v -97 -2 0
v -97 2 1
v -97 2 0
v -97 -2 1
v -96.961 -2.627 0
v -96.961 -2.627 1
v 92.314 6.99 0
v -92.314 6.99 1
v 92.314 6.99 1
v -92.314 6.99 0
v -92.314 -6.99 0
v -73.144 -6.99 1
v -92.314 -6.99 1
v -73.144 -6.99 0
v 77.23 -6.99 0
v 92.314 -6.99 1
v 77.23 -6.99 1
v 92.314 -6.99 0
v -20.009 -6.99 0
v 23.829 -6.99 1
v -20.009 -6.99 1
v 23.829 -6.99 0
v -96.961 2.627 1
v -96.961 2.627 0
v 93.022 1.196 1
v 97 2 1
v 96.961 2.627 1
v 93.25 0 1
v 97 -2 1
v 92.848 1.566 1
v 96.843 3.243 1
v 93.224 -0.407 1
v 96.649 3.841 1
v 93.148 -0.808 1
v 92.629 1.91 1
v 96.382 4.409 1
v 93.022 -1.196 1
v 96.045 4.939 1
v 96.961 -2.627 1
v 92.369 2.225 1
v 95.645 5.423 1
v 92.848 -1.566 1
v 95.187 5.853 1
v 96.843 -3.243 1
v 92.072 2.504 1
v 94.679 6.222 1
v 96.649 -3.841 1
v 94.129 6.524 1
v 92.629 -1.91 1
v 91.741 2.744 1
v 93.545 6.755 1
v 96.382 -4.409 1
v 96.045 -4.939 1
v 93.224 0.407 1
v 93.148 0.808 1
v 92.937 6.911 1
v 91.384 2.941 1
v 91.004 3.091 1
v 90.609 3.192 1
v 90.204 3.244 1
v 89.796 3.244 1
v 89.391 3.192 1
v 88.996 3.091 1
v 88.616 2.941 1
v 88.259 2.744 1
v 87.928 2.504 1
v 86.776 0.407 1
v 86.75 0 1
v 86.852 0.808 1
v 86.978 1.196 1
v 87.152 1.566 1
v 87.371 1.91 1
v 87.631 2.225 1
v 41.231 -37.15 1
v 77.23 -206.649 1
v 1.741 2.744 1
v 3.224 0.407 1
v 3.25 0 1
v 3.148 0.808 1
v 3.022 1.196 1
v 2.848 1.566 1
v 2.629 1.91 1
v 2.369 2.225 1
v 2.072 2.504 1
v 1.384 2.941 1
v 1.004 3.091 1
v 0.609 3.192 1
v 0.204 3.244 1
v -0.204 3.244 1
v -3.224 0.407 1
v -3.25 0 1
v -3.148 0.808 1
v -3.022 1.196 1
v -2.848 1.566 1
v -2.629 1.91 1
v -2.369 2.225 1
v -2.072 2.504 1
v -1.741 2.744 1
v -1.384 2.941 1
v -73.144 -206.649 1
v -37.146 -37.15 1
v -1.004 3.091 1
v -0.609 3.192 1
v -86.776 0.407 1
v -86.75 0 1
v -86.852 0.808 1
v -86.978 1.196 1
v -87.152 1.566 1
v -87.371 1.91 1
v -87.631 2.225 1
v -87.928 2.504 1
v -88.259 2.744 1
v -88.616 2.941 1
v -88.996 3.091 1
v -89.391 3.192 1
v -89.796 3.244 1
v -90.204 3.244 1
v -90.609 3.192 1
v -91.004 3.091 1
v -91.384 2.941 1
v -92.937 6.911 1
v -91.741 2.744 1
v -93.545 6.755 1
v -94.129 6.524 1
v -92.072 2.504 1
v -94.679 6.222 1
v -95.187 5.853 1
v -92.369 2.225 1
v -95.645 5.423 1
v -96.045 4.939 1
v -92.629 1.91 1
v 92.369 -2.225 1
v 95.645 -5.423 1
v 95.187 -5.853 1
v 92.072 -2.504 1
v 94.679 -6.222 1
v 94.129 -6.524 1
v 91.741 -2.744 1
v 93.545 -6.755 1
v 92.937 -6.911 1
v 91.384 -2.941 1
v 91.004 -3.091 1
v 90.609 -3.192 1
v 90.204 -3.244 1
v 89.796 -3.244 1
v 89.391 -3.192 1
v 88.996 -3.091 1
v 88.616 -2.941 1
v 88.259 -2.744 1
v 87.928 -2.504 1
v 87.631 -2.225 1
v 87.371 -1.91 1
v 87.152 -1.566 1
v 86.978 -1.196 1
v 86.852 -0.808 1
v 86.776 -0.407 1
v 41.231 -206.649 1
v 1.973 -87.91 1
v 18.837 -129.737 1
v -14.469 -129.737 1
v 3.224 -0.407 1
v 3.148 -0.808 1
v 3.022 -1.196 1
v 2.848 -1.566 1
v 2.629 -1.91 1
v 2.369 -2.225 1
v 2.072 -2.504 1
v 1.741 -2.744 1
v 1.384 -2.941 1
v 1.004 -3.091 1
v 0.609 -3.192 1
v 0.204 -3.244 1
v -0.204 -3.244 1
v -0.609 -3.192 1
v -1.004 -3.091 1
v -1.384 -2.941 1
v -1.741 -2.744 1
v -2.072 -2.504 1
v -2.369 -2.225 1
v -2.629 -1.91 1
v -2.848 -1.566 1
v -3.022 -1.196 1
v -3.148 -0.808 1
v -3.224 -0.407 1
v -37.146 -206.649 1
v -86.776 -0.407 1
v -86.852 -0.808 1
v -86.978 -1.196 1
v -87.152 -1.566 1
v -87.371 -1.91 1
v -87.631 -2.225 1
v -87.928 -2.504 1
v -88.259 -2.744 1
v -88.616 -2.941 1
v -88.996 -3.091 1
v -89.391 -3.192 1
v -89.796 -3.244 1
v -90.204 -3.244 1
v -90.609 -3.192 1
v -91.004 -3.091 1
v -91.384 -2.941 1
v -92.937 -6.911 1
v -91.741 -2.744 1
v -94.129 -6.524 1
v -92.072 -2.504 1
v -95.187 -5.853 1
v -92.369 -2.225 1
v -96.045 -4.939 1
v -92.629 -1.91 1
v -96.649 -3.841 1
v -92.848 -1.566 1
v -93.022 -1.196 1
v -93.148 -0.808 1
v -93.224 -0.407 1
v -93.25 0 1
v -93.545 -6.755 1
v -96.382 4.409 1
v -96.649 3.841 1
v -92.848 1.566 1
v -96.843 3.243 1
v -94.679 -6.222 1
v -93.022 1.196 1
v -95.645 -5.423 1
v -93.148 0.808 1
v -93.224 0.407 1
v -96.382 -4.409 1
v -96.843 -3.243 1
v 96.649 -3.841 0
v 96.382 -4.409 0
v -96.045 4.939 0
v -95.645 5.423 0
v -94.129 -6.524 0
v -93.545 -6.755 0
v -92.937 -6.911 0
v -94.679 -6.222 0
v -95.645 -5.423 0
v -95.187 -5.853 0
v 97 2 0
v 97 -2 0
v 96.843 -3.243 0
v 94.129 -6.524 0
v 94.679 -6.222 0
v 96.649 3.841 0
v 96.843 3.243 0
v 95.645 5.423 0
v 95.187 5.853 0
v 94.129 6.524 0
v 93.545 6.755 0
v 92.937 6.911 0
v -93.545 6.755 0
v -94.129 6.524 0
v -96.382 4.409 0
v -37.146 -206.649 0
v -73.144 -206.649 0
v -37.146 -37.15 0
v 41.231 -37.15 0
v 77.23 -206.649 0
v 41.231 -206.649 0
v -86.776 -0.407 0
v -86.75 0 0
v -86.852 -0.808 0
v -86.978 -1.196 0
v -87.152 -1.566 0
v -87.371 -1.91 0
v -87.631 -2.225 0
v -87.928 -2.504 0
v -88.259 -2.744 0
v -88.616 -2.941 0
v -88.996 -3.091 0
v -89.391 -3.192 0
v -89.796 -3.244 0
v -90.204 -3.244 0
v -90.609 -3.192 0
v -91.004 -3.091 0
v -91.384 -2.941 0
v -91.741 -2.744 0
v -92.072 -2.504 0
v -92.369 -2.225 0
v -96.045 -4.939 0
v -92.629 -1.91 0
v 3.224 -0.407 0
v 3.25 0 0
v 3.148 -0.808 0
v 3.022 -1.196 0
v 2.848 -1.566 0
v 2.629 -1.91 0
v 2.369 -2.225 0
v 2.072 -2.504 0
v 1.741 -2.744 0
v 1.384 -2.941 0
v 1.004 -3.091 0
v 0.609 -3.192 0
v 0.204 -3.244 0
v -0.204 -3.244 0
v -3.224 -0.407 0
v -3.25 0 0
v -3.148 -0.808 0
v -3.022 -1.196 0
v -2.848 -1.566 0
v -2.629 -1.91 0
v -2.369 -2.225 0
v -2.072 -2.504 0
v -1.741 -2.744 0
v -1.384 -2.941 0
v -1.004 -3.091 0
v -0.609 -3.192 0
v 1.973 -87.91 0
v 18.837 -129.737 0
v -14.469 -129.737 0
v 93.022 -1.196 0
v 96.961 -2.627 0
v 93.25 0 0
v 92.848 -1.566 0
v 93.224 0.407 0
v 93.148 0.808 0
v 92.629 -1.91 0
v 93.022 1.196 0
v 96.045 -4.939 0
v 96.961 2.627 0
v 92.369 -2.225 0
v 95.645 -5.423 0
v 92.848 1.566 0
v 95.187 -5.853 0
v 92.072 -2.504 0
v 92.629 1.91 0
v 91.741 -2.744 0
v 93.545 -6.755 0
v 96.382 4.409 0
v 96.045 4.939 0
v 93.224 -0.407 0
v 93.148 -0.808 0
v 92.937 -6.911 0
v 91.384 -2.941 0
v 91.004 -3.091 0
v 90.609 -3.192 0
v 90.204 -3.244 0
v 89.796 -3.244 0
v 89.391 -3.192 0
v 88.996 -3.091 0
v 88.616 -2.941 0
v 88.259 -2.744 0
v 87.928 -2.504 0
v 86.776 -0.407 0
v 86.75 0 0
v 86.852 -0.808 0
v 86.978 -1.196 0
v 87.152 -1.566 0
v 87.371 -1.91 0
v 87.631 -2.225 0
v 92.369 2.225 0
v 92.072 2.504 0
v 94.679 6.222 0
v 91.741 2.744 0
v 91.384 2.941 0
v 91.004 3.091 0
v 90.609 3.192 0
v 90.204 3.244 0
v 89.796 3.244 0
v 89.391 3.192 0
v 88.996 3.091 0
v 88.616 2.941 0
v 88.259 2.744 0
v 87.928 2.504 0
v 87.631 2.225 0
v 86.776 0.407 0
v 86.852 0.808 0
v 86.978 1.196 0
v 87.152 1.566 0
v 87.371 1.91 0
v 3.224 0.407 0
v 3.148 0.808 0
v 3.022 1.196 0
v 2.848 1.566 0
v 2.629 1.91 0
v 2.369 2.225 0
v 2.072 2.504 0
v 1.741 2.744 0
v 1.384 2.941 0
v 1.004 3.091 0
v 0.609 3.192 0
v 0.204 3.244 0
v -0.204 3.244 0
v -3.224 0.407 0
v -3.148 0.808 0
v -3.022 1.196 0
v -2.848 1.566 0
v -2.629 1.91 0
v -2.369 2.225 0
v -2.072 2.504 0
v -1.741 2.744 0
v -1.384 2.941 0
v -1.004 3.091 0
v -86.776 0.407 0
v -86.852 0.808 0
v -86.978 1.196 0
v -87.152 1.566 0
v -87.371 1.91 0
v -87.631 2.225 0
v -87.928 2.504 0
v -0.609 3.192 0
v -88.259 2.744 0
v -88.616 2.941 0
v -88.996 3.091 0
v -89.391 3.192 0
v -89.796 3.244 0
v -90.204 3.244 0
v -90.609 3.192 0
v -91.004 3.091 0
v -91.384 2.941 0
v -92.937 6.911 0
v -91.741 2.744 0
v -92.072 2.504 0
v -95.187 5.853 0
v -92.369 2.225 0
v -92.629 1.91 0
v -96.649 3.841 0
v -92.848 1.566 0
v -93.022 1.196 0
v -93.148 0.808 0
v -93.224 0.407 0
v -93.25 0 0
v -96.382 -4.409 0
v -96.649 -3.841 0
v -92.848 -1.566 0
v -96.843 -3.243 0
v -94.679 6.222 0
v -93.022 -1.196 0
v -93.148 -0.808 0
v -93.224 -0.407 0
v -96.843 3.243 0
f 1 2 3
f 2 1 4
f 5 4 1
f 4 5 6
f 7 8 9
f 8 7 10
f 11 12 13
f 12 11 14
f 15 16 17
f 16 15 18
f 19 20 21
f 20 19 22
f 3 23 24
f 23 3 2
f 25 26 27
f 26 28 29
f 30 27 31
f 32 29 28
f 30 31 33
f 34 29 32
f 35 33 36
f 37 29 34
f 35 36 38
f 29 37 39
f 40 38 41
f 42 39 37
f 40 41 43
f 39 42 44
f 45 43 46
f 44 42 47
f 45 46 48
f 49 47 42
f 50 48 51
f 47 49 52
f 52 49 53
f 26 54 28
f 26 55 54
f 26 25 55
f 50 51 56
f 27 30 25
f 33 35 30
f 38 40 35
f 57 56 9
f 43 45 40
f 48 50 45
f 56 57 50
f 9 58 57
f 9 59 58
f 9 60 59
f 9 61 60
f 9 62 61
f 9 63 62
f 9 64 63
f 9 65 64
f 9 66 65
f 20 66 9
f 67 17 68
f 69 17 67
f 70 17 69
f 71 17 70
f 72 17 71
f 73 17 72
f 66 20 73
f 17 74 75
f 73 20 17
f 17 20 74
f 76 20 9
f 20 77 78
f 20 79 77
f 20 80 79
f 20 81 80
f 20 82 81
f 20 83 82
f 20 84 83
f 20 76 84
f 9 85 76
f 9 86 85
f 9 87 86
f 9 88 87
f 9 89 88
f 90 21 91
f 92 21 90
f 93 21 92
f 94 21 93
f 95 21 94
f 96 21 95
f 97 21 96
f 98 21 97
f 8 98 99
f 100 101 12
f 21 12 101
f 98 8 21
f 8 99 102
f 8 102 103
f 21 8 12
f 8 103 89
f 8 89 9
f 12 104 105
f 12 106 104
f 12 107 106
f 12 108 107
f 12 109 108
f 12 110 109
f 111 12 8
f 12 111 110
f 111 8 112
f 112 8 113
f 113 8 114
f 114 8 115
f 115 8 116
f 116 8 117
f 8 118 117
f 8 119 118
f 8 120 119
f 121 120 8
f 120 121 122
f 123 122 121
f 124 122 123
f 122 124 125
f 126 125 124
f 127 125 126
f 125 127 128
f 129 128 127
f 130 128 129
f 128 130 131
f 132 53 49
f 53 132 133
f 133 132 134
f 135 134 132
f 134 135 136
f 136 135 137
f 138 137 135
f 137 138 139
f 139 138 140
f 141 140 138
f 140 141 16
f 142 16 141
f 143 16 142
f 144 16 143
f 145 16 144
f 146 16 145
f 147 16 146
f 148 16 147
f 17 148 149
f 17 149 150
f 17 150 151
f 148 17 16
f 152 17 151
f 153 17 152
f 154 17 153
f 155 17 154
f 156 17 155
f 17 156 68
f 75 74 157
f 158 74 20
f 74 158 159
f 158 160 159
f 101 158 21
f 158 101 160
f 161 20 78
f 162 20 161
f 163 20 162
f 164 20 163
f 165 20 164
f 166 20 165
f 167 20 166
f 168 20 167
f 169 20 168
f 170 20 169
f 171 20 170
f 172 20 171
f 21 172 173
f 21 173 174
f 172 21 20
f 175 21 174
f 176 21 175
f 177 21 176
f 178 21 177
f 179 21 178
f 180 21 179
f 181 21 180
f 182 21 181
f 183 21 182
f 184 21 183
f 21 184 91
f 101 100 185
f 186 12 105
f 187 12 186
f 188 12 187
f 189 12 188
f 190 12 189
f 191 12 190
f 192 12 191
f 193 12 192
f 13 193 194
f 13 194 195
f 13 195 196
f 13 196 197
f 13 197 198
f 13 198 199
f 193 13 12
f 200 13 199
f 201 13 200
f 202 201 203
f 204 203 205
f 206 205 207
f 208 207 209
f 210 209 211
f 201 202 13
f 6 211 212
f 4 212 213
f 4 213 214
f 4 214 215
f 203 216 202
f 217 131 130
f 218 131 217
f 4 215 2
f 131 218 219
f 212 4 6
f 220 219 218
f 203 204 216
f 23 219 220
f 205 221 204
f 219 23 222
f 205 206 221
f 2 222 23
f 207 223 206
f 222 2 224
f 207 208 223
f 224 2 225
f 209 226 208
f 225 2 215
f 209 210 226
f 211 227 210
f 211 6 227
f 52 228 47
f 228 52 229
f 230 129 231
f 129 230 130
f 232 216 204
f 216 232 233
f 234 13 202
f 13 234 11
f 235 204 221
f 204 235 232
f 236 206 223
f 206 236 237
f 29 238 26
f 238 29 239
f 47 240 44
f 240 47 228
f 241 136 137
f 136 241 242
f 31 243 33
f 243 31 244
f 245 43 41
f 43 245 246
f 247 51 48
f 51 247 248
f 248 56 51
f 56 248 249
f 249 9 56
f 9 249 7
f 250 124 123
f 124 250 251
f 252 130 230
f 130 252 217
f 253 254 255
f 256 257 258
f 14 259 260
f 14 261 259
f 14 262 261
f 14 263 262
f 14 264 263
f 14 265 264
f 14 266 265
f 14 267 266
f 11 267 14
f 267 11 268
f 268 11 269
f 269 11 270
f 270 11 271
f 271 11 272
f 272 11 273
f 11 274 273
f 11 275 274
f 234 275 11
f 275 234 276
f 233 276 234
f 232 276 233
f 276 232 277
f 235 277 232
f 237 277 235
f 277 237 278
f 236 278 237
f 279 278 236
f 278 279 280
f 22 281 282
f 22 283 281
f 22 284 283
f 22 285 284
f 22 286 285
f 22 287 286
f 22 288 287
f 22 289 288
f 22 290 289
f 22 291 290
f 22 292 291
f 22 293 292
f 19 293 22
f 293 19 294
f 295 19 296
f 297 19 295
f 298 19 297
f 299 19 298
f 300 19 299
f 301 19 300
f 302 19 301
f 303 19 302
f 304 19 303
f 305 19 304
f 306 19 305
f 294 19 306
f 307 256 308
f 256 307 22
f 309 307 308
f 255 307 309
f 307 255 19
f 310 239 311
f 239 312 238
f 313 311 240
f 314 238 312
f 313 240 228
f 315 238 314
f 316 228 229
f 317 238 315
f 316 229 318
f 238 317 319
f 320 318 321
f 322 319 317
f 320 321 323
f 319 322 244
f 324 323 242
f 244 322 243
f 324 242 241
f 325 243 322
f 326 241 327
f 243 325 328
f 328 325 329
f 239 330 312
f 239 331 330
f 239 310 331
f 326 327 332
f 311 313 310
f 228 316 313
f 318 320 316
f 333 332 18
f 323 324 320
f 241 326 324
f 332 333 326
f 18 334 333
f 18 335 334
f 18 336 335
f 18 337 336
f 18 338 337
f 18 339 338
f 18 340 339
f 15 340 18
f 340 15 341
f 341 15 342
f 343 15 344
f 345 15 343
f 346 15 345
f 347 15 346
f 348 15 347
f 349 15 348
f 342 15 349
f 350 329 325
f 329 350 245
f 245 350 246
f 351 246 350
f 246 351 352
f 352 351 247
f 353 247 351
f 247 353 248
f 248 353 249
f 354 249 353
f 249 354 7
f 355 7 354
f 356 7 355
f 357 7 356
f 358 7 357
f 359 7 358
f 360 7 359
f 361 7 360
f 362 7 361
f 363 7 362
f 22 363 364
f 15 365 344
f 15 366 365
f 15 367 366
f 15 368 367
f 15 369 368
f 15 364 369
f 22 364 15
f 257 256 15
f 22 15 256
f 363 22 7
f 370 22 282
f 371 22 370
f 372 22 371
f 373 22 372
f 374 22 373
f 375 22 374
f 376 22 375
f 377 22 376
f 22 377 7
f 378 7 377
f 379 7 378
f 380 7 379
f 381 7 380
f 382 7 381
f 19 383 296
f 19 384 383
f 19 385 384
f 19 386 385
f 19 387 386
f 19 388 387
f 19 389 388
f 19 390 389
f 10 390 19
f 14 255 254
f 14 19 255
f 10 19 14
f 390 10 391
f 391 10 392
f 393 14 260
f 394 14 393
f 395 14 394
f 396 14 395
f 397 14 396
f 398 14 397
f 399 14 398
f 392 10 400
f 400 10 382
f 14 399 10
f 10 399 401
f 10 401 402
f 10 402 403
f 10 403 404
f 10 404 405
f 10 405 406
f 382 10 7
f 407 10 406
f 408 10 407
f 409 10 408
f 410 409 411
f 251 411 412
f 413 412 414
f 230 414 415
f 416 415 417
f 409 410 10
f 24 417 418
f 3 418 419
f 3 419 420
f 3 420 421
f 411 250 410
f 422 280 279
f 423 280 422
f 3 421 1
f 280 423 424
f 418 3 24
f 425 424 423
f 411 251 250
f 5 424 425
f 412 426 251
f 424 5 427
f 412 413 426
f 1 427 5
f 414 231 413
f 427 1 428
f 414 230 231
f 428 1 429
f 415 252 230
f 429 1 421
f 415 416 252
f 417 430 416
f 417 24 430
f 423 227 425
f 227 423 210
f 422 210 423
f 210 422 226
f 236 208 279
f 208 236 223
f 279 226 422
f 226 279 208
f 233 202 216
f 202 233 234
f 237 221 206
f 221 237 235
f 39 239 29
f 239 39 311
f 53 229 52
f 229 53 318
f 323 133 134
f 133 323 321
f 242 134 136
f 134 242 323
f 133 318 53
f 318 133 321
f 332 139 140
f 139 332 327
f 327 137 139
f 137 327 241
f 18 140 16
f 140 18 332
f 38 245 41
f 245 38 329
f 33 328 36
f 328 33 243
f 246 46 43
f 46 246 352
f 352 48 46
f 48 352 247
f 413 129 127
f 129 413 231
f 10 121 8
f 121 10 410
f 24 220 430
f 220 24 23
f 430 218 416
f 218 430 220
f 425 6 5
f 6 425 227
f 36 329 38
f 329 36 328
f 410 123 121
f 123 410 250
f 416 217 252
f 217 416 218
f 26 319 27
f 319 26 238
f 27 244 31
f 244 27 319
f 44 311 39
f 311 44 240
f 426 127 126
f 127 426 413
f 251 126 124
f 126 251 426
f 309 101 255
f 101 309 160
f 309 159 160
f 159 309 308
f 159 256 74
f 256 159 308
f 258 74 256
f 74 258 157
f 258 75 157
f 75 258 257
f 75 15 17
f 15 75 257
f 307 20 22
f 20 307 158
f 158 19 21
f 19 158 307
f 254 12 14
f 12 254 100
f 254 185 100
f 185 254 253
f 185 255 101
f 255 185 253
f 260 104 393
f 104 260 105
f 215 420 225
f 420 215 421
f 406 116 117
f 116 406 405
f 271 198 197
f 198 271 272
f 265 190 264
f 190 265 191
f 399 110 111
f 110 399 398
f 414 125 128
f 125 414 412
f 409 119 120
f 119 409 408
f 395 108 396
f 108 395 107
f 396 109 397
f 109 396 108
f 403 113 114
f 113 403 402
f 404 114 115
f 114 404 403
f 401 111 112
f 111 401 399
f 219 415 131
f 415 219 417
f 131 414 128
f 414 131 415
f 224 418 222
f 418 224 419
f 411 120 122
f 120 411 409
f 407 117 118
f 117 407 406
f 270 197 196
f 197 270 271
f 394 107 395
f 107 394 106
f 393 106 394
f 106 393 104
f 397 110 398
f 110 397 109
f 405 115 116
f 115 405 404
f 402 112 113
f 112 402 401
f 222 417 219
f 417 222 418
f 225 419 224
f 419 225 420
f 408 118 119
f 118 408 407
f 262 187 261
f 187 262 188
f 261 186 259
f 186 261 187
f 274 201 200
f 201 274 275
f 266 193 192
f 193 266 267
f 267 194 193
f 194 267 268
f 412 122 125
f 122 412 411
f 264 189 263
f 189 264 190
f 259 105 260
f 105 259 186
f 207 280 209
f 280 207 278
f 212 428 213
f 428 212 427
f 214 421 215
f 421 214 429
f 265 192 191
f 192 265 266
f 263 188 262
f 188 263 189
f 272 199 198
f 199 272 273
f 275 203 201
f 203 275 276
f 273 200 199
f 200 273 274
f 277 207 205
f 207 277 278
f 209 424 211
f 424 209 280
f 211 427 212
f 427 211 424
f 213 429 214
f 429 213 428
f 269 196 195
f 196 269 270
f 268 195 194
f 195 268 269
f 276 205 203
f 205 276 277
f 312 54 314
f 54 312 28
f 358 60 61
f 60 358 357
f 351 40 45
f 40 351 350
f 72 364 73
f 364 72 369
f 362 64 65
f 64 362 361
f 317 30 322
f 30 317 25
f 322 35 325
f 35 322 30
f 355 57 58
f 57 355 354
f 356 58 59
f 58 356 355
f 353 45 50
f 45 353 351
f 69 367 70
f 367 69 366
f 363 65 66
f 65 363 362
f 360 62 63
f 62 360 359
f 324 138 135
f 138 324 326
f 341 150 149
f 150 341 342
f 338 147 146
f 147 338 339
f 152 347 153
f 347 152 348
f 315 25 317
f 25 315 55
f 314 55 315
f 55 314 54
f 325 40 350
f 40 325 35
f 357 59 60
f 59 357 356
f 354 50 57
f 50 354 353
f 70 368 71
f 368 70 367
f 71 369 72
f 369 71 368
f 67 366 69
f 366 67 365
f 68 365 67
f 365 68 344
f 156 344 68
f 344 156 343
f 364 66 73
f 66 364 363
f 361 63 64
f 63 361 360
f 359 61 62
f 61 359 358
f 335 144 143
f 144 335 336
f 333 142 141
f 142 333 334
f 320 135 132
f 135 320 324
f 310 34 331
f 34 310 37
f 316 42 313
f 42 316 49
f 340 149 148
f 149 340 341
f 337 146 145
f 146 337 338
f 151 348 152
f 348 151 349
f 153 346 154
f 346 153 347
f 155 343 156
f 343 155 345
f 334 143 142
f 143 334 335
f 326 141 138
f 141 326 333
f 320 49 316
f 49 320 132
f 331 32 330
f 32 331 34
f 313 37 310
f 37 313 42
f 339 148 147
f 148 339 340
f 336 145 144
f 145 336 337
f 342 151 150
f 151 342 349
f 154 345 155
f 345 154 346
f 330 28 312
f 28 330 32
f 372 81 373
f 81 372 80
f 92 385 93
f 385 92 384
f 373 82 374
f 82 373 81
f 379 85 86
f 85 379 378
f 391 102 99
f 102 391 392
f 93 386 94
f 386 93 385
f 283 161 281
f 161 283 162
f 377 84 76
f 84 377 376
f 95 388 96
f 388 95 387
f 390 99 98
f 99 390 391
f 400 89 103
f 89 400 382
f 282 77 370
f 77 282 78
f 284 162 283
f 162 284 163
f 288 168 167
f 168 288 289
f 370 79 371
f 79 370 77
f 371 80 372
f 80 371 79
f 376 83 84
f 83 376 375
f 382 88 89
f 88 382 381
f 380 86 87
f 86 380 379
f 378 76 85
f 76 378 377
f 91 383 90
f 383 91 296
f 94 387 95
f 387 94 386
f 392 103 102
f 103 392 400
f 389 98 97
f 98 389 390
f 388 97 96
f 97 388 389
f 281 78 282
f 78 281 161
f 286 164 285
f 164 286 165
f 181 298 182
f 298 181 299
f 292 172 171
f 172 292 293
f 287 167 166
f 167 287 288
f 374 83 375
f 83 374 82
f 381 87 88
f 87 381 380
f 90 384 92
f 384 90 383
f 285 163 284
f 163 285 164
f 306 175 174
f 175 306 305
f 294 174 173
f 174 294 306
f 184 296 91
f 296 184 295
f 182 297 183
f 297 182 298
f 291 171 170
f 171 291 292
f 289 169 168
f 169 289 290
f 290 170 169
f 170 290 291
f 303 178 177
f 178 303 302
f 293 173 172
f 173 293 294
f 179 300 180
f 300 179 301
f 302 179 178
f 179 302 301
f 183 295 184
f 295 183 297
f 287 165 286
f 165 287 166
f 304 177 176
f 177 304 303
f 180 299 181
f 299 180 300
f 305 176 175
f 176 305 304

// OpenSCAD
$fn = 50;


difference() {
	union() {
		translate(v = [0, 0, 0]) {
			rotate(a = [0, 0, 0]) {
				hull() {
					translate(v = [-92.0000000000, 2.0000000000, 0]) {
						rotate(a = [0, 0, 0]) {
							translate(v = [0, 0, 0]) {
								rotate(a = [0, 0, 0]) {
									cylinder(h = 1, r = 5);
								}
							}
						}
					}
					translate(v = [92.0000000000, 2.0000000000, 0]) {
						rotate(a = [0, 0, 0]) {
							translate(v = [0, 0, 0]) {
								rotate(a = [0, 0, 0]) {
									cylinder(h = 1, r = 5);
								}
							}
						}
					}
					translate(v = [-92.0000000000, -2.0000000000, 0]) {
						rotate(a = [0, 0, 0]) {
							translate(v = [0, 0, 0]) {
								rotate(a = [0, 0, 0]) {
									cylinder(h = 1, r = 5);
								}
							}
						}
					}
					translate(v = [92.0000000000, -2.0000000000, 0]) {
						rotate(a = [0, 0, 0]) {
							translate(v = [0, 0, 0]) {
								rotate(a = [0, 0, 0]) {
									cylinder(h = 1, r = 5);
								}
							}
						}
					}
				}
			}
		}
		translate(v = [0, 0, 0]) {
			rotate(a = [0, 0, 0]) {
				linear_extrude(height = 1) {
					text(font = "DejaVu Sans Mono:style=Bold", halign = "center", size = 209.0000000000, text = "M", valign = "top");
				}
			}
		}
	}
	union() {
		translate(v = [-90.0000000000, 0.0000000000, -125.0000000000]) {
			rotate(a = [0, 0, 0]) {
				cylinder(h = 250, r = 3.2500000000);
			}
		}
		translate(v = [90.0000000000, 0.0000000000, -125.0000000000]) {
			rotate(a = [0, 0, 0]) {
				cylinder(h = 250, r = 3.2500000000);
			}
		}
		translate(v = [90.0000000000, 0.0000000000, -125.0000000000]) {
			rotate(a = [0, 0, 0]) {
				cylinder(h = 250, r = 3.2500000000);
			}
		}
		translate(v = [0, 0, -125.0000000000]) {
			rotate(a = [0, 0, 0]) {
				cylinder(h = 250, r = 3.2500000000);
			}
		}
	}
}
